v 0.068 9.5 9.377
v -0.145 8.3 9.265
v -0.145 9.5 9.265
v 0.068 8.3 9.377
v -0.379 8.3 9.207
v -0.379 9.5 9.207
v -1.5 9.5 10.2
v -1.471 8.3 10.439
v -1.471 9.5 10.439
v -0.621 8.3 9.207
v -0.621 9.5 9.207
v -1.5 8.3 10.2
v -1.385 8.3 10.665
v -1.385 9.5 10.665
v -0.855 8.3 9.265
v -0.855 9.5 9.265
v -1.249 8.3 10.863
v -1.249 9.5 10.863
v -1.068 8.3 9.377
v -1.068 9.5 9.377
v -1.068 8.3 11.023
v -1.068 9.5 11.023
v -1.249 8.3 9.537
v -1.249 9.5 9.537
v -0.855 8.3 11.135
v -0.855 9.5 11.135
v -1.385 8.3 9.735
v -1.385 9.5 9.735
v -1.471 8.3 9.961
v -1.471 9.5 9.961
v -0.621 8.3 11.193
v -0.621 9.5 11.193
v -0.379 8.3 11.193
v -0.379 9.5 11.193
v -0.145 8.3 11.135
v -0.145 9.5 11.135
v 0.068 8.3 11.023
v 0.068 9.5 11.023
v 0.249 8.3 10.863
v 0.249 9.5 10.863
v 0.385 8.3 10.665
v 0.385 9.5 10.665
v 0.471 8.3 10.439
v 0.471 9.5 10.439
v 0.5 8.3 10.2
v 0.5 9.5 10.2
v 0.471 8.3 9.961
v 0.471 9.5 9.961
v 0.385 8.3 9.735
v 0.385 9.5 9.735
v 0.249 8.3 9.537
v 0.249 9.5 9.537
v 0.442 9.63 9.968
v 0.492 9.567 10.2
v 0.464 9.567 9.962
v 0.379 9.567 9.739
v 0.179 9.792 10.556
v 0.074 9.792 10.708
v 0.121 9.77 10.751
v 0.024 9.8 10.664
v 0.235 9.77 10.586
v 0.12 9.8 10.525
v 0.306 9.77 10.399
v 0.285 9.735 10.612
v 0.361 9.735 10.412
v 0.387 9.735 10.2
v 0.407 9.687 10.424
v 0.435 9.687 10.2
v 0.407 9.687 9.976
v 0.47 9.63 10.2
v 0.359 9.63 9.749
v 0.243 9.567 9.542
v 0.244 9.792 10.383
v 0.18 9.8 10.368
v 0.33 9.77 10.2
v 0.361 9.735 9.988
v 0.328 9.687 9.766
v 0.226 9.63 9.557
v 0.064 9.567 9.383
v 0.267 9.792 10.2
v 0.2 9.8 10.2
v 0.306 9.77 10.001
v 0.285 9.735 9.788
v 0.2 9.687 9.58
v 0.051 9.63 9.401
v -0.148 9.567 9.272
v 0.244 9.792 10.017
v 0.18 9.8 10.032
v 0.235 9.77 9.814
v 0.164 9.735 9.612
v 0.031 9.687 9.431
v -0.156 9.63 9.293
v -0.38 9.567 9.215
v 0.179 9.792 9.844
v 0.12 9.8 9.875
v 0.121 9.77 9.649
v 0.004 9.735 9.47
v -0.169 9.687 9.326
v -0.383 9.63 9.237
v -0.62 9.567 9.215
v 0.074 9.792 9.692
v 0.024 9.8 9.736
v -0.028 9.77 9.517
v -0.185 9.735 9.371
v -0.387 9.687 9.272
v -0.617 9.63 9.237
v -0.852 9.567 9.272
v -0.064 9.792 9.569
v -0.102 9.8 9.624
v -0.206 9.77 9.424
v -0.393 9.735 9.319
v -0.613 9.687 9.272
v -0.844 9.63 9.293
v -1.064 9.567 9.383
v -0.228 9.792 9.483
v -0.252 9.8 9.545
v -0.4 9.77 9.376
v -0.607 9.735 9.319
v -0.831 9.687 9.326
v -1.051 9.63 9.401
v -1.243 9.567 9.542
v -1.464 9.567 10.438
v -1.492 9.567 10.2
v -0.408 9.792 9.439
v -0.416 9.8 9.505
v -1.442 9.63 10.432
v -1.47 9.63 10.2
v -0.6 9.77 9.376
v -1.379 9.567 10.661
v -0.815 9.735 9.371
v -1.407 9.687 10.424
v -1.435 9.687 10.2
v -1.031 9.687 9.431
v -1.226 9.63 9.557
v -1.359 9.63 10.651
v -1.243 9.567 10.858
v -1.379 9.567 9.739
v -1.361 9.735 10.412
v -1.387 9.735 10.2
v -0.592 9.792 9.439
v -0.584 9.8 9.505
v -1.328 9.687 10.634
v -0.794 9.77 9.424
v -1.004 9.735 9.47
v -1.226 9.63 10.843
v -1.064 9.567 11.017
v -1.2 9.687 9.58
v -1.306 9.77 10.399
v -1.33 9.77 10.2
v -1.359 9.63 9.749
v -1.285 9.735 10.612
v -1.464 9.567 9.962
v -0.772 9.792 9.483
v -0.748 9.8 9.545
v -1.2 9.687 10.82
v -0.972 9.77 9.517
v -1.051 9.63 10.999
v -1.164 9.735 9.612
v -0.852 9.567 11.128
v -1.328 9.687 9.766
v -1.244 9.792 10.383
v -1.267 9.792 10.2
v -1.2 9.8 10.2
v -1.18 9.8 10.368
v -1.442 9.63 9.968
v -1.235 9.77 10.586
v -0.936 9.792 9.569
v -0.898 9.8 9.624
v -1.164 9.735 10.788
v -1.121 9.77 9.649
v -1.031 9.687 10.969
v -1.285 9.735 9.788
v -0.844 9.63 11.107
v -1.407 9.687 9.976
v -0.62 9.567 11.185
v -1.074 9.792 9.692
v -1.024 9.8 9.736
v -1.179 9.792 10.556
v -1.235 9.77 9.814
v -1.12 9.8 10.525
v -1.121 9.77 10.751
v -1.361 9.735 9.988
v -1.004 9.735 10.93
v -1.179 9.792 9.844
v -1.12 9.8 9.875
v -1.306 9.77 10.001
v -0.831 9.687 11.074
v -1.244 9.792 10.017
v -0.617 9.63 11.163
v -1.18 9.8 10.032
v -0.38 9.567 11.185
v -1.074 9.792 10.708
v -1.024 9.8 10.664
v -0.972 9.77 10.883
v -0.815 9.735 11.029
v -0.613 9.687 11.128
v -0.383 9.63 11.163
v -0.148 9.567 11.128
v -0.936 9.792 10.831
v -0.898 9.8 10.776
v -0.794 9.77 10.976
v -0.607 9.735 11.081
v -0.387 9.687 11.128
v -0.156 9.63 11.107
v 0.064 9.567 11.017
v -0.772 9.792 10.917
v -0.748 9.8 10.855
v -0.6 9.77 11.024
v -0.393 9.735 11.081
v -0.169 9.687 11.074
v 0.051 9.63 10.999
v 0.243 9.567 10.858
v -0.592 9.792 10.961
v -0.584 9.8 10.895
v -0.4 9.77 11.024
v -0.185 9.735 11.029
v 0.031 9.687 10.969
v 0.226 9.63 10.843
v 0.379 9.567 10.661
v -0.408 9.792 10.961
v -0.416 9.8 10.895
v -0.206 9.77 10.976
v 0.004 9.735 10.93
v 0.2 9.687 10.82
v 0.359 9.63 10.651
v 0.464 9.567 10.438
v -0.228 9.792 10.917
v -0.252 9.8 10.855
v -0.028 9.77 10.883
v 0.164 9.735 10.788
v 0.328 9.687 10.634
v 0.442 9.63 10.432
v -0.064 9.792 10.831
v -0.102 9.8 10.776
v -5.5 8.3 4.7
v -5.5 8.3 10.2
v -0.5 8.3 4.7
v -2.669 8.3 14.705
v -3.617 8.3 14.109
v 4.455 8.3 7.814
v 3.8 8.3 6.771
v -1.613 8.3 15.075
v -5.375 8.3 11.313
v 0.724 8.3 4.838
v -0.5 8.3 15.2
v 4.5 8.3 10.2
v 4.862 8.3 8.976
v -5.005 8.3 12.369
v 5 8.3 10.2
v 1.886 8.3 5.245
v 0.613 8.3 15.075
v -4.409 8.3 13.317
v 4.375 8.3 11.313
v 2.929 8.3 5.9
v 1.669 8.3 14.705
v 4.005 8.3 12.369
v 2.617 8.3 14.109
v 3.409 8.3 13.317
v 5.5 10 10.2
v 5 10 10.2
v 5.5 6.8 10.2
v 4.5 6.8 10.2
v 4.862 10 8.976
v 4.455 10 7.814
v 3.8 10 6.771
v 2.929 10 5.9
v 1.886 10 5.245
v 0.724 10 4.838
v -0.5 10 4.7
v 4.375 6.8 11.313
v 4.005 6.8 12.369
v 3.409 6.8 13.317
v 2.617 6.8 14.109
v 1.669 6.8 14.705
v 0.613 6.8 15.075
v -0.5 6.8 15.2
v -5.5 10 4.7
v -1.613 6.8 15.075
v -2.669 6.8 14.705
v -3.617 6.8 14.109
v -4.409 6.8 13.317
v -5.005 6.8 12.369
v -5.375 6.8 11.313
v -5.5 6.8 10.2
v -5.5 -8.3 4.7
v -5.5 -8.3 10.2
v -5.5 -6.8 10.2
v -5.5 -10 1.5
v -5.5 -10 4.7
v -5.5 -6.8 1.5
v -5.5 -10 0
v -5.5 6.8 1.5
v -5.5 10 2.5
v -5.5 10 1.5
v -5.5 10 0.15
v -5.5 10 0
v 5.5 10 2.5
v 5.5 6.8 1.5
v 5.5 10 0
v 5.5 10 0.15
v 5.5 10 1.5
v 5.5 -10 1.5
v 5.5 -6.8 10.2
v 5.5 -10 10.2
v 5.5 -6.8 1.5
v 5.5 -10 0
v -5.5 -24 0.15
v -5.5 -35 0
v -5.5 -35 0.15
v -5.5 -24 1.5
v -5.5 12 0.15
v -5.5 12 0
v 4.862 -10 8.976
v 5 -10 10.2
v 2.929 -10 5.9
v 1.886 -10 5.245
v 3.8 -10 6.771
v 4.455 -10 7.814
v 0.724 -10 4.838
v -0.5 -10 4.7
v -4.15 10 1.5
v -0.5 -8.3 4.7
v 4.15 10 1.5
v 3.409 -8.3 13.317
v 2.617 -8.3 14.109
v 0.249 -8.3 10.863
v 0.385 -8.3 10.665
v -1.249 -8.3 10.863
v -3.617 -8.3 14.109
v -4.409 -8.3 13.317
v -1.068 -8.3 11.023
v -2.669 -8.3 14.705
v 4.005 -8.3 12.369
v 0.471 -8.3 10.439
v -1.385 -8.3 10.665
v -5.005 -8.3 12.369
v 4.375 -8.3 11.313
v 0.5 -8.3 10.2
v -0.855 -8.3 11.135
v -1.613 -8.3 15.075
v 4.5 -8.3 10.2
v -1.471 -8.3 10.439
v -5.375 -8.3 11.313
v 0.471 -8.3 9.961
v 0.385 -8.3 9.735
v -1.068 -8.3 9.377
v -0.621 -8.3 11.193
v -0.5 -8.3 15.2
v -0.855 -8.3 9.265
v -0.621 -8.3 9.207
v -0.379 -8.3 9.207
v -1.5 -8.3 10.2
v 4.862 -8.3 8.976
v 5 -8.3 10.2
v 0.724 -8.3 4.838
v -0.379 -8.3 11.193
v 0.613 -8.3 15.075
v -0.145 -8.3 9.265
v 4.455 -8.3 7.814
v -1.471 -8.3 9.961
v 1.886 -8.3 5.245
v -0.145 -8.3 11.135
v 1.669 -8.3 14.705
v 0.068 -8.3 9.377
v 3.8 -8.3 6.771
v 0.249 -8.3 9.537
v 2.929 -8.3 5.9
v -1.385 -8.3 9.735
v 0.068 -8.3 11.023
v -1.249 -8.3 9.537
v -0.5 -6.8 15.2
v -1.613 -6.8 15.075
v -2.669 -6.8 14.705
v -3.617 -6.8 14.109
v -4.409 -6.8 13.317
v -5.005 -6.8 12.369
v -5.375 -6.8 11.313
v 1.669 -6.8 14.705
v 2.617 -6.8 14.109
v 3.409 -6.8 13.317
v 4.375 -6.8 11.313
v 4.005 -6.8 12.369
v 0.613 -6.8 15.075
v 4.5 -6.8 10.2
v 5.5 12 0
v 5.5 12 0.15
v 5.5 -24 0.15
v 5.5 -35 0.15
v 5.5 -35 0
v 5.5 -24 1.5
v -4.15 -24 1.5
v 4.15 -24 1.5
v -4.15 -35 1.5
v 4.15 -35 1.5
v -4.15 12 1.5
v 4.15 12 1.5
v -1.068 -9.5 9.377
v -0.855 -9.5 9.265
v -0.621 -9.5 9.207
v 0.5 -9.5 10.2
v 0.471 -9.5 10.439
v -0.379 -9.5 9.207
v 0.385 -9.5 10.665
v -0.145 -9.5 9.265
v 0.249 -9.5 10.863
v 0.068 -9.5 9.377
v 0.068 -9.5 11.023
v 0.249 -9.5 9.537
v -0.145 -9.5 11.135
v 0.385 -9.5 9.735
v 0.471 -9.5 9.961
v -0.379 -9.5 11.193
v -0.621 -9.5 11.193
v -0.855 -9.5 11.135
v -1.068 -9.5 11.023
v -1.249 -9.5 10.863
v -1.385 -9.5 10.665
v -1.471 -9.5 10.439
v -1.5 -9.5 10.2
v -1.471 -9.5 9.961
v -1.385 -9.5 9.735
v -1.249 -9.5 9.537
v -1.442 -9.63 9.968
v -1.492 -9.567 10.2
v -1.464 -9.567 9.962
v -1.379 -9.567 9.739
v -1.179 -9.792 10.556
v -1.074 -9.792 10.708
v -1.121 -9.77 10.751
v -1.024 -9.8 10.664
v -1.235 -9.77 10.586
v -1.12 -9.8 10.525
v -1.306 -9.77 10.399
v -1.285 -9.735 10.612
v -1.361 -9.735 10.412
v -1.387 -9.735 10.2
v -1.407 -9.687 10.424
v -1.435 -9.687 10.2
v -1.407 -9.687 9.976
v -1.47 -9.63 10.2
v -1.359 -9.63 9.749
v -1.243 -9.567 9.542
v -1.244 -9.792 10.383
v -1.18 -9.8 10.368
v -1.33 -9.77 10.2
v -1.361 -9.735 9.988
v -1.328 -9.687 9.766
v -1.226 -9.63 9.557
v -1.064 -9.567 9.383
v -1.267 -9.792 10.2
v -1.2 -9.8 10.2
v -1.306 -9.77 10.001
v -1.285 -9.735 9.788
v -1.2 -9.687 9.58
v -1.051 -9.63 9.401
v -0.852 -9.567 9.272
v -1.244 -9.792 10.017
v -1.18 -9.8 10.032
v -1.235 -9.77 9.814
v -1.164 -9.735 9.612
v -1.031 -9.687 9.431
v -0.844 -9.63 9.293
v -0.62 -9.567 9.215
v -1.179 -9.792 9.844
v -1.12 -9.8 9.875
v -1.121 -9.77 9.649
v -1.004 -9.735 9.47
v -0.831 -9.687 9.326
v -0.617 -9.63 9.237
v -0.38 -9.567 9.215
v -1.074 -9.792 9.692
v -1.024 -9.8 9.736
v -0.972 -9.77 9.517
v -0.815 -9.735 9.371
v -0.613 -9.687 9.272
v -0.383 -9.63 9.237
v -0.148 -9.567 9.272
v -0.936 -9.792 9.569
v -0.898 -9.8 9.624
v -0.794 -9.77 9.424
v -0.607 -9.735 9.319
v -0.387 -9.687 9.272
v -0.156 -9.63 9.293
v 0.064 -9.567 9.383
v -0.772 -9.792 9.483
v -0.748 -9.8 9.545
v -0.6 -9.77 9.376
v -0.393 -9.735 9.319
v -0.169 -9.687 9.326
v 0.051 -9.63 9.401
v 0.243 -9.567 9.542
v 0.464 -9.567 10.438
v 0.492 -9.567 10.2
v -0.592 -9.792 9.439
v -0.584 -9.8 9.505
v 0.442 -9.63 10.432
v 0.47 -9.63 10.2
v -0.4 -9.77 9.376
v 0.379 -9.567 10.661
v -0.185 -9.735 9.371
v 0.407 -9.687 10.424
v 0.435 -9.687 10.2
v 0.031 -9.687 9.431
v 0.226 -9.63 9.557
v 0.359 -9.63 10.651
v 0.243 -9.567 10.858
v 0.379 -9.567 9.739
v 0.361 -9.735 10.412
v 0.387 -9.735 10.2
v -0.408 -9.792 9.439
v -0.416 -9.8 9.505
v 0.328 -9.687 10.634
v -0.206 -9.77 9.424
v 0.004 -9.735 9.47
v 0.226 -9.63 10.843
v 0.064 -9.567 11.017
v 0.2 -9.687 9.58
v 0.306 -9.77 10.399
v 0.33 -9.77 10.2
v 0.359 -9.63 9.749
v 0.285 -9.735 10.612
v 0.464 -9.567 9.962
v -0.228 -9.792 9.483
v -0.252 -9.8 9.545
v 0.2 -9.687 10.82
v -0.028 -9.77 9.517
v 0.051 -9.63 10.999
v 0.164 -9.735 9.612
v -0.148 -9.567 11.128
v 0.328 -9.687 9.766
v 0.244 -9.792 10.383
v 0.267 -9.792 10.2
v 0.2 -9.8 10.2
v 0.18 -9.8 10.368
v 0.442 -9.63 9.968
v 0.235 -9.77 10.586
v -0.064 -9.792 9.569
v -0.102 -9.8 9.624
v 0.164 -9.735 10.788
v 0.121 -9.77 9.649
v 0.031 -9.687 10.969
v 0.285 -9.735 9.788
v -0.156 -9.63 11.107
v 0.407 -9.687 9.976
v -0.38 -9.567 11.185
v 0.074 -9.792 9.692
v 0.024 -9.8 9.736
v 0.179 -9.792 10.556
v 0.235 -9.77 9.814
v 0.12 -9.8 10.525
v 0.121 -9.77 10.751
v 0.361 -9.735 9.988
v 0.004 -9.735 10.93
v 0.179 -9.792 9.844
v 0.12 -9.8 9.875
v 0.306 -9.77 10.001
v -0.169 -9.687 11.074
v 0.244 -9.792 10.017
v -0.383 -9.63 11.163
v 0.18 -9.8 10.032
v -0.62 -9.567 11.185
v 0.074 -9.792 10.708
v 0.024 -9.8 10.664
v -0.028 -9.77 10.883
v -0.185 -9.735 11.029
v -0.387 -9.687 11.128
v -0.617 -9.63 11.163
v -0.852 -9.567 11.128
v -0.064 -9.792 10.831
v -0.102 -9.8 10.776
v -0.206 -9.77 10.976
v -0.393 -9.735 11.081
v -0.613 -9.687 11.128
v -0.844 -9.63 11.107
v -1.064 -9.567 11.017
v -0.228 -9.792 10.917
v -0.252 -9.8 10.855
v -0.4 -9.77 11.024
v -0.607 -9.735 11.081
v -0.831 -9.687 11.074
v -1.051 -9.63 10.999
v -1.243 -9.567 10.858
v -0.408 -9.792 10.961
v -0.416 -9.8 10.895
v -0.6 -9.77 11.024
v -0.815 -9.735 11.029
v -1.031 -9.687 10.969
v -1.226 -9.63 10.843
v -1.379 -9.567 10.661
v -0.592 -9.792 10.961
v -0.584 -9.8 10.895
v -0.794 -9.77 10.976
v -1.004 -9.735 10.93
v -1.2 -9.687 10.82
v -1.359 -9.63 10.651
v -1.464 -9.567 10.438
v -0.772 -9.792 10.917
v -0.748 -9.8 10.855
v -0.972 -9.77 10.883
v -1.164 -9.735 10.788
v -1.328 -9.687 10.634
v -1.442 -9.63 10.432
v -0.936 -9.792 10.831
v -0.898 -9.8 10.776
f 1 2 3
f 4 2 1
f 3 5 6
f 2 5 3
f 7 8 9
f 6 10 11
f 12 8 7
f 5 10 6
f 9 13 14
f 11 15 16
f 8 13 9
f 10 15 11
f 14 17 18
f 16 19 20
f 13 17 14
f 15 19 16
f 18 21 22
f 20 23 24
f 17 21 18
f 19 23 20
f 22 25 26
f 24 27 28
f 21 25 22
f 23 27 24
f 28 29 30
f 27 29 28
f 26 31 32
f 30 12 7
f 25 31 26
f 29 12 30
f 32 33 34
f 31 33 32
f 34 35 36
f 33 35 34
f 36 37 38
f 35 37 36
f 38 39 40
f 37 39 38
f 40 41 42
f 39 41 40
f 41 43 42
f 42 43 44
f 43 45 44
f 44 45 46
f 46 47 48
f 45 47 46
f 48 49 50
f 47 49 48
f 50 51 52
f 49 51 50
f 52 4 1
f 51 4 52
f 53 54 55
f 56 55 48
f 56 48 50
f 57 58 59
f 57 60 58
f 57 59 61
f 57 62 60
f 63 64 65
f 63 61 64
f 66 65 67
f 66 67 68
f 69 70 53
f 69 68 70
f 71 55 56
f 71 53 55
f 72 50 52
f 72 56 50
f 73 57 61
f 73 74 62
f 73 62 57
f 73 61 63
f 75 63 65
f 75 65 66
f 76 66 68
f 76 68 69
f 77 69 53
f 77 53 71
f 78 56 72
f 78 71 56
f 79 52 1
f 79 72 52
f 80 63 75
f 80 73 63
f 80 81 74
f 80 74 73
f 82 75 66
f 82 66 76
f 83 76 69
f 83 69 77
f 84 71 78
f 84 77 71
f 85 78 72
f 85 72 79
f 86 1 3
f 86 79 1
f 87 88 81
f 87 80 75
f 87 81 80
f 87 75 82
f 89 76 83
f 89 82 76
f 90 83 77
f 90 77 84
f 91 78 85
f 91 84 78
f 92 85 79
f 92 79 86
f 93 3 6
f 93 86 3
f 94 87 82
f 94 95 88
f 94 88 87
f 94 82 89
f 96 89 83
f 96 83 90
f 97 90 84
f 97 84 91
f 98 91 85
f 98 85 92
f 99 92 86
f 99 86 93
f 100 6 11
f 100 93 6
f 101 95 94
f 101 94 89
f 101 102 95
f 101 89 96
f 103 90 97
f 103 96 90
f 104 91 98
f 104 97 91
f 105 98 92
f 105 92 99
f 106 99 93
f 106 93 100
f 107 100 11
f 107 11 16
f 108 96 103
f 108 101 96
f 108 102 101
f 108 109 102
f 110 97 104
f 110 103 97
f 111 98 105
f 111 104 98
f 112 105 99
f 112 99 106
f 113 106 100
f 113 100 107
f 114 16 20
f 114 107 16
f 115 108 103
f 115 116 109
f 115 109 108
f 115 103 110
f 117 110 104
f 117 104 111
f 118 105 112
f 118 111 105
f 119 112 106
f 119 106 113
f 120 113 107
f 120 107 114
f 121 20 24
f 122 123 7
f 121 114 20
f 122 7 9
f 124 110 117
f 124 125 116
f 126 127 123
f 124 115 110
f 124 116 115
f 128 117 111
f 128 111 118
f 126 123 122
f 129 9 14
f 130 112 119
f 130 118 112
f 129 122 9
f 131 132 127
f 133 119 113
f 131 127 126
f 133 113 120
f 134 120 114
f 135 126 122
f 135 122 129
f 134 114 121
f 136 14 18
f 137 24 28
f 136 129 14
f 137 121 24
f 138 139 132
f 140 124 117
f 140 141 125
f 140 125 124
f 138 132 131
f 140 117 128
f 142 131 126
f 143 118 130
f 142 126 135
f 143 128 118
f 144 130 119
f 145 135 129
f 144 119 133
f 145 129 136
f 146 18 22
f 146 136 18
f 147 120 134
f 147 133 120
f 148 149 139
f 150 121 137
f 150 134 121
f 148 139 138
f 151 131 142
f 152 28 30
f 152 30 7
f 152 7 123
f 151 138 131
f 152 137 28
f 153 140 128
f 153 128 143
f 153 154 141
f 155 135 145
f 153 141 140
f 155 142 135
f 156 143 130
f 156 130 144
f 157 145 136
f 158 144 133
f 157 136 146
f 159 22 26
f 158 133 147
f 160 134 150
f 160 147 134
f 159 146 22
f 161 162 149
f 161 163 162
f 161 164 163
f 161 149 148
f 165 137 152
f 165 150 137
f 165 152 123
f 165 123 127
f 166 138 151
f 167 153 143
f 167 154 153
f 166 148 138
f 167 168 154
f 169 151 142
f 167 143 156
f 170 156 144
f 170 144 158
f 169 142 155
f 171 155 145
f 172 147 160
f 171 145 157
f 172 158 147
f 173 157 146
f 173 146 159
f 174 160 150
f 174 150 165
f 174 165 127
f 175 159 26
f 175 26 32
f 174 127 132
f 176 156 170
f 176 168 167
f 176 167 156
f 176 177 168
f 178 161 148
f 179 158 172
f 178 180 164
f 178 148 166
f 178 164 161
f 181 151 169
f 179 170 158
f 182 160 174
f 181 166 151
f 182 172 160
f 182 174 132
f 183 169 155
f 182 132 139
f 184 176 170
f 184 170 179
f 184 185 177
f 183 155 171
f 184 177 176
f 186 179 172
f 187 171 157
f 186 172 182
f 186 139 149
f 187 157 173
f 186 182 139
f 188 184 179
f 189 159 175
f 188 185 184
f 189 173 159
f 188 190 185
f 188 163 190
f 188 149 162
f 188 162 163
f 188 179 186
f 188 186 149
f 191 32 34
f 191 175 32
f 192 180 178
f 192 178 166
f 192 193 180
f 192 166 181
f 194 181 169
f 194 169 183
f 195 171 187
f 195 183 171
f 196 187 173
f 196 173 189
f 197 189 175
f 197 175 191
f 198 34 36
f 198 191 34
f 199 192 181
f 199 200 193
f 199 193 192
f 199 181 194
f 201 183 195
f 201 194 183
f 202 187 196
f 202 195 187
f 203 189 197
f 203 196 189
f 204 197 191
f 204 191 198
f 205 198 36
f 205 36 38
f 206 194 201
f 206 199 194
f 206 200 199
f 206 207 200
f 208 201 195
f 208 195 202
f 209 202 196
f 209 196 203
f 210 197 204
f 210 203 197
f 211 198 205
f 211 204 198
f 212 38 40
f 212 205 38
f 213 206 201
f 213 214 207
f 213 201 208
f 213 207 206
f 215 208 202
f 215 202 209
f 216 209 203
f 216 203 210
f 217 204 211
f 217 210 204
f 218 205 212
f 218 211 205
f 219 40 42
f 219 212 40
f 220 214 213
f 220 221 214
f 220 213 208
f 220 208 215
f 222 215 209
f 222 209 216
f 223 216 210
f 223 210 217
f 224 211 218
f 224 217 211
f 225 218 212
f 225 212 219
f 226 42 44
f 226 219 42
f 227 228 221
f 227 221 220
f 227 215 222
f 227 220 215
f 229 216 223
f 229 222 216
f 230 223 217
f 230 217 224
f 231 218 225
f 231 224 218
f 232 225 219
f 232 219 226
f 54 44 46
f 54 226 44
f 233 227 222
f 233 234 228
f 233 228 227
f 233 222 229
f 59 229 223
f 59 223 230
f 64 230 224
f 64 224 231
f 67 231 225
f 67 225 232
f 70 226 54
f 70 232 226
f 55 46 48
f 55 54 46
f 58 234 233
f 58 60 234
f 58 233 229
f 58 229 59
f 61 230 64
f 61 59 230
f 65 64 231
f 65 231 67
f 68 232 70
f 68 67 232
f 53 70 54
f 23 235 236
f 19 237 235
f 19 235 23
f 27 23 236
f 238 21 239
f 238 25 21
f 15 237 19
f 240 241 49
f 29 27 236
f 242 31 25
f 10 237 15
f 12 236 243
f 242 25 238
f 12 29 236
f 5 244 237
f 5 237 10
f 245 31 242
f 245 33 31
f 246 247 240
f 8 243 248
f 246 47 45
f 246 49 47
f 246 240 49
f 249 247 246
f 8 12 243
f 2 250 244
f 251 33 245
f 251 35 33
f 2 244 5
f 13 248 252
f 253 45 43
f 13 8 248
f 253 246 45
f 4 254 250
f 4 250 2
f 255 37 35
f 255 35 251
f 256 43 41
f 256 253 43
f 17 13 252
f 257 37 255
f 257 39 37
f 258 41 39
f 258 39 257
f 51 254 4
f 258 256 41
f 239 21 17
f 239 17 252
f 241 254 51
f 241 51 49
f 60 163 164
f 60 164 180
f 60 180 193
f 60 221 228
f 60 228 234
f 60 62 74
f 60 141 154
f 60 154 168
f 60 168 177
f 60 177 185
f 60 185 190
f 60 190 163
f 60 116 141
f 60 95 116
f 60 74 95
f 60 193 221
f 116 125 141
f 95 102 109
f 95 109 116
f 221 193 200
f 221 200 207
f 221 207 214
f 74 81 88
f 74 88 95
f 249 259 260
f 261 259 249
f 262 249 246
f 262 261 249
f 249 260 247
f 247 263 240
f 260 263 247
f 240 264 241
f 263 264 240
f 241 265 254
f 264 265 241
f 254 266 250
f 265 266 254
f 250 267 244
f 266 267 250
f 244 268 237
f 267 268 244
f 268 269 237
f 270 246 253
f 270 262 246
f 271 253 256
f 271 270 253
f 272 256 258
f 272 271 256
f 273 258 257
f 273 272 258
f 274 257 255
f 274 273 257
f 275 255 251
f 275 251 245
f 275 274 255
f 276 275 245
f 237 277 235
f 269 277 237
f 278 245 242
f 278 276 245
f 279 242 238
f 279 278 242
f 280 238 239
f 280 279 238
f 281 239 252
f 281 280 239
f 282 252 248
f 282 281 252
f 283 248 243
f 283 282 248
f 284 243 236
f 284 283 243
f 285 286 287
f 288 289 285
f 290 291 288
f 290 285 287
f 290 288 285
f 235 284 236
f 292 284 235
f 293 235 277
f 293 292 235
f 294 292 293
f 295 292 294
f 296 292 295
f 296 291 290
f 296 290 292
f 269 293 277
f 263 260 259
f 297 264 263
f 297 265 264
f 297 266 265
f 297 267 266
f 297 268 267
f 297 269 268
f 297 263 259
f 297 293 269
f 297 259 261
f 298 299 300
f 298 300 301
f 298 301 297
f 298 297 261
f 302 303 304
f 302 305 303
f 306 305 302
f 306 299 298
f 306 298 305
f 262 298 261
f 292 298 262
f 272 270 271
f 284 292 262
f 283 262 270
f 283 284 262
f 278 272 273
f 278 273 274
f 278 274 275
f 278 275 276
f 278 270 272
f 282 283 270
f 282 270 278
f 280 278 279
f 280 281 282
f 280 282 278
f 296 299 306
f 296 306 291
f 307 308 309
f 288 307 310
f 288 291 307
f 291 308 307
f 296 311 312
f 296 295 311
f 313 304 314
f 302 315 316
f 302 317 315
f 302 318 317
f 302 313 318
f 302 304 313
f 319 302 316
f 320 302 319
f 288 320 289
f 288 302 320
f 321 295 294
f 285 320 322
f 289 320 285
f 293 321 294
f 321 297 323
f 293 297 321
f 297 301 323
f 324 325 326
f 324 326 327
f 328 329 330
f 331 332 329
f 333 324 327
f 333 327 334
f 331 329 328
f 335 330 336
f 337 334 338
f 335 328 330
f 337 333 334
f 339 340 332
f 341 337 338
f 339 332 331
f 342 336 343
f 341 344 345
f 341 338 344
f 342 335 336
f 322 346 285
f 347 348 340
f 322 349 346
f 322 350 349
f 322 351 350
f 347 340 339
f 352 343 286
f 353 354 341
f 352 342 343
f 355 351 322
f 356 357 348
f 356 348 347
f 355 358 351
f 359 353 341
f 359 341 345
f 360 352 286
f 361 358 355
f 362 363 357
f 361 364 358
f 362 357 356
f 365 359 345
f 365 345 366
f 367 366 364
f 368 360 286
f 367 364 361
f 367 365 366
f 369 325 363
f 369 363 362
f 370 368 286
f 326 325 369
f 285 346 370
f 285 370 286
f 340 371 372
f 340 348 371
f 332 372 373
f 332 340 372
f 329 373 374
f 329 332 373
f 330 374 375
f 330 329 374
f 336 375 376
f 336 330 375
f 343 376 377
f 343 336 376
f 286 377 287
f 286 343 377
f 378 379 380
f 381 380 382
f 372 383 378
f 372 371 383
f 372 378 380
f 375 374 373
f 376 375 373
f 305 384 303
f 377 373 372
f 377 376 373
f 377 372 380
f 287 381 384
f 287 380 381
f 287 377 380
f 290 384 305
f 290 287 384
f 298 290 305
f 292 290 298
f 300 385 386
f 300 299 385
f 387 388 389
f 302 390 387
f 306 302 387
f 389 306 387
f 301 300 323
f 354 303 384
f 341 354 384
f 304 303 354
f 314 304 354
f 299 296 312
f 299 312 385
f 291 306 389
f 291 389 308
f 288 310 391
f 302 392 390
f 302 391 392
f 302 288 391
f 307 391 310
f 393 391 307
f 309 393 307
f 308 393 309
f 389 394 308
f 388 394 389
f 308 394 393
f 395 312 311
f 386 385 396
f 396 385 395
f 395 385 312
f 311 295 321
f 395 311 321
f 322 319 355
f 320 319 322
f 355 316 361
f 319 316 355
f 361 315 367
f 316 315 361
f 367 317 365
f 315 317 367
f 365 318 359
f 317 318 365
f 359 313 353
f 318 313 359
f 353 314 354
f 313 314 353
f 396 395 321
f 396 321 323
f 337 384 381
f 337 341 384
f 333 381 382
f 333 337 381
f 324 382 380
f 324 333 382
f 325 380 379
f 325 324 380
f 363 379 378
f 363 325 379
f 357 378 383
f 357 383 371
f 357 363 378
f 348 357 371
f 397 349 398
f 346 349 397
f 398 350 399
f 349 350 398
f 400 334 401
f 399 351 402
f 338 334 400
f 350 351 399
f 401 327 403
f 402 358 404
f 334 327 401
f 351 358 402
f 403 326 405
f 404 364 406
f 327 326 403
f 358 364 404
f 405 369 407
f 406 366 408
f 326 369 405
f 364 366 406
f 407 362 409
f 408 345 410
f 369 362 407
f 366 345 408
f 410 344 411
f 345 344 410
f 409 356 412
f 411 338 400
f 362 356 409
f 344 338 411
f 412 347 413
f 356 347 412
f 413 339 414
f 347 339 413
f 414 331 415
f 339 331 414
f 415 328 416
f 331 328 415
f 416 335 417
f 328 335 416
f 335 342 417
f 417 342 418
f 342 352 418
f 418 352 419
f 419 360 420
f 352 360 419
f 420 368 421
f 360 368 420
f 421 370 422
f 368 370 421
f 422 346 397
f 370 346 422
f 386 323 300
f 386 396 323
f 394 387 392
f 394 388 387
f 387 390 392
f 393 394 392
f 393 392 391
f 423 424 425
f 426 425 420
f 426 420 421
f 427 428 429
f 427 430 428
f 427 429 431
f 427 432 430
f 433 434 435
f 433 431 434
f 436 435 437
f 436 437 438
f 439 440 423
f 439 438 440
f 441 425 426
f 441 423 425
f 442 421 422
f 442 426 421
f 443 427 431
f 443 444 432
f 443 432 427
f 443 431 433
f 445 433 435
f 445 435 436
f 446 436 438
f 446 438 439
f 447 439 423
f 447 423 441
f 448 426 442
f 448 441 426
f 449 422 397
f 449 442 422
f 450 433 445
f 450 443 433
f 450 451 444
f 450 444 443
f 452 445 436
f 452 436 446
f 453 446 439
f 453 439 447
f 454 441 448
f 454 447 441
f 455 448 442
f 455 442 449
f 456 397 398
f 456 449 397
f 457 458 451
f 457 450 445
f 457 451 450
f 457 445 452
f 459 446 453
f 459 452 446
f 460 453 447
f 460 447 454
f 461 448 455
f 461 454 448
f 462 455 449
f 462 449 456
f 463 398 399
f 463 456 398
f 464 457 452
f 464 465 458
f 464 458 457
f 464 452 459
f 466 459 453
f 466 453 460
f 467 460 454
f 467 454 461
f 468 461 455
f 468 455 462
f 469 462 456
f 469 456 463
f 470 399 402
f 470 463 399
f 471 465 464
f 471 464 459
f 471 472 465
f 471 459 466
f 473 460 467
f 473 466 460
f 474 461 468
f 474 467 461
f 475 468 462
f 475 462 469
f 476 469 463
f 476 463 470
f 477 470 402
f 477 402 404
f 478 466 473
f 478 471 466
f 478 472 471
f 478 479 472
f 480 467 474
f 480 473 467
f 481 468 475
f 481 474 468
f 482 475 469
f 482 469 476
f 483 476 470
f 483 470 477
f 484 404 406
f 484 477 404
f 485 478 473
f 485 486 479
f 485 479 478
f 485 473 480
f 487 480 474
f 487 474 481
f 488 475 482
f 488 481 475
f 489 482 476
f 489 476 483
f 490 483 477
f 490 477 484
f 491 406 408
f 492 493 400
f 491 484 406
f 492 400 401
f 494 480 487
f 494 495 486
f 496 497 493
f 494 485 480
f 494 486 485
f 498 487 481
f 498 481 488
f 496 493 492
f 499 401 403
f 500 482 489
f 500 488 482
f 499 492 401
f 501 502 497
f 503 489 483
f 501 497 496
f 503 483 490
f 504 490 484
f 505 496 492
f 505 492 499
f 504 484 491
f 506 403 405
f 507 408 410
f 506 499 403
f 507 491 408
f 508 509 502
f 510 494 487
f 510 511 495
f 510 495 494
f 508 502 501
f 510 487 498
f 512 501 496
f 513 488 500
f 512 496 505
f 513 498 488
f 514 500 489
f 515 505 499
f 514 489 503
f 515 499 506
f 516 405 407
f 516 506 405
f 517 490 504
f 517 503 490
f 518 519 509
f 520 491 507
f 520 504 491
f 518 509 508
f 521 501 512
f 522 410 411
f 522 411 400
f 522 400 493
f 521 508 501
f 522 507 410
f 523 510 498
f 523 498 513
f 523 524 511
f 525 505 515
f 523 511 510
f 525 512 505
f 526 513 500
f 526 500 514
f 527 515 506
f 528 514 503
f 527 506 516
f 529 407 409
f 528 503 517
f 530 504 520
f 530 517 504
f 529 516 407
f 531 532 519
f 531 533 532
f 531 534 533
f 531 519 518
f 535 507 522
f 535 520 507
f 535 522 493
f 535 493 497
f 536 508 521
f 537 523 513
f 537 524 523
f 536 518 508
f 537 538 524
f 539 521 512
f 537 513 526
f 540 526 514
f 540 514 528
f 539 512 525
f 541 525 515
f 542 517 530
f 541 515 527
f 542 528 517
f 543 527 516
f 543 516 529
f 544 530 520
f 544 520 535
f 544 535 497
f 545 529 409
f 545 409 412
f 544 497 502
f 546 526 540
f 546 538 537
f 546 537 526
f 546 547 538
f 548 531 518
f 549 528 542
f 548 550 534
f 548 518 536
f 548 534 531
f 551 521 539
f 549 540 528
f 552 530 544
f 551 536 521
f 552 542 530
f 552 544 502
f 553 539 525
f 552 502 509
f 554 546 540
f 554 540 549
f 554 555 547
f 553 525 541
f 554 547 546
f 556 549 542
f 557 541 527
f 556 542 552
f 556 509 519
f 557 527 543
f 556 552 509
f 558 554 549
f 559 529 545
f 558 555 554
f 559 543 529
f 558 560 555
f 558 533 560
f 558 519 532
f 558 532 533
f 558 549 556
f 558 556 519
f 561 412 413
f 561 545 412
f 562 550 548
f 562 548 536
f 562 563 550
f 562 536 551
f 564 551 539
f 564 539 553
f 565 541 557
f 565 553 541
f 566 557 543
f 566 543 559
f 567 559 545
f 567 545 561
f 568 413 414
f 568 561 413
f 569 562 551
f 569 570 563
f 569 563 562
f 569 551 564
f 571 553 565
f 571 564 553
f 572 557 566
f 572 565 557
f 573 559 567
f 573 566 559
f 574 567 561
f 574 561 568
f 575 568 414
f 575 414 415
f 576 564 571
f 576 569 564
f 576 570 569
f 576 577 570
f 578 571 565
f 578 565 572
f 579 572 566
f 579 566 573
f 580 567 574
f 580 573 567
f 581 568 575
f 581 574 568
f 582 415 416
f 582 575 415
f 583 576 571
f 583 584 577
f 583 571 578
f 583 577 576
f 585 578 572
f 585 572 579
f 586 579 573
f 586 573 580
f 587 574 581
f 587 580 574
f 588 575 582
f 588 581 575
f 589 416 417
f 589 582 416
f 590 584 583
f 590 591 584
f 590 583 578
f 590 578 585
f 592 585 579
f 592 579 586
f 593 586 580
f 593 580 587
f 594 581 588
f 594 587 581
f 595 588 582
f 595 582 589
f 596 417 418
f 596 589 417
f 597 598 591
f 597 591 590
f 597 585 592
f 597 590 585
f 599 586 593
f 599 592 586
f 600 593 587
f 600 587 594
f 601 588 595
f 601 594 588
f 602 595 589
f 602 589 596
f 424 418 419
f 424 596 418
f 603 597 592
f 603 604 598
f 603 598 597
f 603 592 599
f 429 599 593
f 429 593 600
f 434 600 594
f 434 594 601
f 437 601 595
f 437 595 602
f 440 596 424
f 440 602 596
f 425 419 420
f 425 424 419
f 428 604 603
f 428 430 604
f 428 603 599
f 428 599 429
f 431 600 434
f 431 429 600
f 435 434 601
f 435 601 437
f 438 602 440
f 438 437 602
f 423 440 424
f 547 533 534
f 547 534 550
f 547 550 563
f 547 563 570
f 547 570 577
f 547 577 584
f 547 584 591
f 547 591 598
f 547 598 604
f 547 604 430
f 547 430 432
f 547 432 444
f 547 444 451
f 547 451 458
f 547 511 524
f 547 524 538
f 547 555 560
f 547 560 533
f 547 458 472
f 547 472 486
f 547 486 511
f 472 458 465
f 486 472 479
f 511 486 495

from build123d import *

# Parameters (mm, degrees)
SKETCH_W        = 11
SKETCH_H        = 20
PAD_DEPTH       = 15.2
POCKET001_DEPTH = 20
SKETCH008_W     = 13.6
SKETCH008_H     = 13.7
POCKET002_DEPTH = 11
POCKET003_DEPTH = 1.7
POCKET004_DEPTH = 1.7
SKETCH011_R     = 1
PAD001_DEPTH    = 1.5
FILLET_R        = 0.3
SKETCH012_R     = 1
PAD002_DEPTH    = 1.5
FILLET001_R     = 0.3
SKETCH013_W     = 11
SKETCH013_H     = 1.5
PAD003_DEPTH    = 25
SKETCH014_W     = 11
SKETCH014_H     = 1.5
PAD004_DEPTH    = 2
POCKET_DEPTH    = 11
POCKET005_DEPTH = 2


with BuildPart() as part:
    # Sketch → Pad (new body)
    with BuildSketch(Plane.XY):
        Rectangle(SKETCH_W, SKETCH_H)
    extrude(amount=PAD_DEPTH)

    # Sketch007 → Pocket001 (cut)
    with BuildSketch(Plane.XZ.offset(10)):
        with BuildLine():
            ThreePointArc((4.5, 10.20001), (-0.50001, 15.2), (-5.5, 10.19999))
            Line((-5.5, 10.19999), (-5.5, 16.2))
            Line((-5.5, 16.2), (5.5, 16.2))
            Line((5.5, 16.2), (5.5, 10.20001))
            Line((5.5, 10.20001), (4.5, 10.20001))
        make_face()
    extrude(amount=-POCKET001_DEPTH, mode=Mode.SUBTRACT)

    # Sketch008 (on Face7 of Pocket001) → Pocket002 (cut)
    with BuildSketch(Plane(origin=(-5.5, 0, 0), x_dir=(0, -1, 0), z_dir=(-1, 0, 0))):
        with Locations((0, 8.35)):
            Rectangle(SKETCH008_W, SKETCH008_H)
    extrude(amount=-POCKET002_DEPTH, mode=Mode.SUBTRACT)

    # Sketch009 (on Face8 of Pocket002) → Pocket003 (cut)
    with BuildSketch(Plane.XZ.offset(10)):
        with BuildLine():
            ThreePointArc((-0.49999, 4.7), (3.389081, 14.089094), (-6, 10.19999))
            Line((-6, 10.19999), (-6, 4.7))
            Line((-6, 4.7), (-0.49999, 4.7))
        make_face()
    extrude(amount=-POCKET003_DEPTH, mode=Mode.SUBTRACT)

    # Sketch010 (on Face1 of Pocket003) → Pocket004 (cut)
    with BuildSketch(Plane(origin=(0, 10, 0), x_dir=(-1, 0, 0), z_dir=(0, 1, 0))):
        with BuildLine():
            ThreePointArc((6, 10.19999), (-3.389081, 14.089094), (0.49999, 4.7))
            Line((0.49999, 4.7), (6, 4.7))
            Line((6, 4.7), (6, 10.19999))
        make_face()
    extrude(amount=-POCKET004_DEPTH, mode=Mode.SUBTRACT)

    # Sketch011 (on Face17 of Pocket004) → Pad001 (join)
    with BuildSketch(Plane.XZ.offset(8.3)):
        with Locations((-0.5, 10.2)):
            Circle(SKETCH011_R)
    extrude(amount=PAD001_DEPTH)

    # Fillet
    fillet_edges = [part.edges().sort_by_distance(p)[0] for p in [
        (-1.5, -9.8, 10.2),
    ]]
    fillet(fillet_edges, radius=FILLET_R)

    # Sketch012 (on Face15 of Fillet) → Pad002 (join)
    with BuildSketch(Plane(origin=(0, 8.3, 0), x_dir=(-1, 0, 0), z_dir=(0, 1, 0))):
        with Locations((0.5, 10.2)):
            Circle(SKETCH012_R)
    extrude(amount=PAD002_DEPTH)

    # Fillet001
    fillet001_edges = [part.edges().sort_by_distance(p)[0] for p in [
        (0.5, 9.8, 10.2),
    ]]
    fillet(fillet001_edges, radius=FILLET001_R)

    # Sketch013 (on Face20 of Fillet001) → Pad003 (join)
    with BuildSketch(Plane.XZ.offset(10)):
        with Locations((0, 0.75)):
            Rectangle(SKETCH013_W, SKETCH013_H)
    extrude(amount=PAD003_DEPTH)

    # Sketch014 (on Face11 of Pad003) → Pad004 (join)
    with BuildSketch(Plane(origin=(0, 10, 0), x_dir=(-1, 0, 0), z_dir=(0, 1, 0))):
        with Locations((0, 0.75)):
            Rectangle(SKETCH014_W, SKETCH014_H)
    extrude(amount=PAD004_DEPTH)

    # Sketch015 (on Face29 of Pad004) → Pocket (cut)
    with BuildSketch(Plane.XZ.offset(35)):
        Polygon((-4.15, 1.5), (-5.65, 0), (-5.65, 2.5), (5.65, 2.5), (5.65, 0), (4.15, 1.5), align=None)
    extrude(amount=-POCKET_DEPTH, mode=Mode.SUBTRACT)

    # Sketch016 (on Face33 of Pocket) → Pocket005 (cut)
    with BuildSketch(Plane(origin=(0, 12, 0), x_dir=(-1, 0, 0), z_dir=(0, 1, 0))):
        Polygon((-4.15, 1.5), (-5.65, 0), (-5.65, 2.5), (5.65, 2.5), (5.65, 0), (4.15, 1.5), align=None)
    extrude(amount=-POCKET005_DEPTH, mode=Mode.SUBTRACT)


solid = part.part
